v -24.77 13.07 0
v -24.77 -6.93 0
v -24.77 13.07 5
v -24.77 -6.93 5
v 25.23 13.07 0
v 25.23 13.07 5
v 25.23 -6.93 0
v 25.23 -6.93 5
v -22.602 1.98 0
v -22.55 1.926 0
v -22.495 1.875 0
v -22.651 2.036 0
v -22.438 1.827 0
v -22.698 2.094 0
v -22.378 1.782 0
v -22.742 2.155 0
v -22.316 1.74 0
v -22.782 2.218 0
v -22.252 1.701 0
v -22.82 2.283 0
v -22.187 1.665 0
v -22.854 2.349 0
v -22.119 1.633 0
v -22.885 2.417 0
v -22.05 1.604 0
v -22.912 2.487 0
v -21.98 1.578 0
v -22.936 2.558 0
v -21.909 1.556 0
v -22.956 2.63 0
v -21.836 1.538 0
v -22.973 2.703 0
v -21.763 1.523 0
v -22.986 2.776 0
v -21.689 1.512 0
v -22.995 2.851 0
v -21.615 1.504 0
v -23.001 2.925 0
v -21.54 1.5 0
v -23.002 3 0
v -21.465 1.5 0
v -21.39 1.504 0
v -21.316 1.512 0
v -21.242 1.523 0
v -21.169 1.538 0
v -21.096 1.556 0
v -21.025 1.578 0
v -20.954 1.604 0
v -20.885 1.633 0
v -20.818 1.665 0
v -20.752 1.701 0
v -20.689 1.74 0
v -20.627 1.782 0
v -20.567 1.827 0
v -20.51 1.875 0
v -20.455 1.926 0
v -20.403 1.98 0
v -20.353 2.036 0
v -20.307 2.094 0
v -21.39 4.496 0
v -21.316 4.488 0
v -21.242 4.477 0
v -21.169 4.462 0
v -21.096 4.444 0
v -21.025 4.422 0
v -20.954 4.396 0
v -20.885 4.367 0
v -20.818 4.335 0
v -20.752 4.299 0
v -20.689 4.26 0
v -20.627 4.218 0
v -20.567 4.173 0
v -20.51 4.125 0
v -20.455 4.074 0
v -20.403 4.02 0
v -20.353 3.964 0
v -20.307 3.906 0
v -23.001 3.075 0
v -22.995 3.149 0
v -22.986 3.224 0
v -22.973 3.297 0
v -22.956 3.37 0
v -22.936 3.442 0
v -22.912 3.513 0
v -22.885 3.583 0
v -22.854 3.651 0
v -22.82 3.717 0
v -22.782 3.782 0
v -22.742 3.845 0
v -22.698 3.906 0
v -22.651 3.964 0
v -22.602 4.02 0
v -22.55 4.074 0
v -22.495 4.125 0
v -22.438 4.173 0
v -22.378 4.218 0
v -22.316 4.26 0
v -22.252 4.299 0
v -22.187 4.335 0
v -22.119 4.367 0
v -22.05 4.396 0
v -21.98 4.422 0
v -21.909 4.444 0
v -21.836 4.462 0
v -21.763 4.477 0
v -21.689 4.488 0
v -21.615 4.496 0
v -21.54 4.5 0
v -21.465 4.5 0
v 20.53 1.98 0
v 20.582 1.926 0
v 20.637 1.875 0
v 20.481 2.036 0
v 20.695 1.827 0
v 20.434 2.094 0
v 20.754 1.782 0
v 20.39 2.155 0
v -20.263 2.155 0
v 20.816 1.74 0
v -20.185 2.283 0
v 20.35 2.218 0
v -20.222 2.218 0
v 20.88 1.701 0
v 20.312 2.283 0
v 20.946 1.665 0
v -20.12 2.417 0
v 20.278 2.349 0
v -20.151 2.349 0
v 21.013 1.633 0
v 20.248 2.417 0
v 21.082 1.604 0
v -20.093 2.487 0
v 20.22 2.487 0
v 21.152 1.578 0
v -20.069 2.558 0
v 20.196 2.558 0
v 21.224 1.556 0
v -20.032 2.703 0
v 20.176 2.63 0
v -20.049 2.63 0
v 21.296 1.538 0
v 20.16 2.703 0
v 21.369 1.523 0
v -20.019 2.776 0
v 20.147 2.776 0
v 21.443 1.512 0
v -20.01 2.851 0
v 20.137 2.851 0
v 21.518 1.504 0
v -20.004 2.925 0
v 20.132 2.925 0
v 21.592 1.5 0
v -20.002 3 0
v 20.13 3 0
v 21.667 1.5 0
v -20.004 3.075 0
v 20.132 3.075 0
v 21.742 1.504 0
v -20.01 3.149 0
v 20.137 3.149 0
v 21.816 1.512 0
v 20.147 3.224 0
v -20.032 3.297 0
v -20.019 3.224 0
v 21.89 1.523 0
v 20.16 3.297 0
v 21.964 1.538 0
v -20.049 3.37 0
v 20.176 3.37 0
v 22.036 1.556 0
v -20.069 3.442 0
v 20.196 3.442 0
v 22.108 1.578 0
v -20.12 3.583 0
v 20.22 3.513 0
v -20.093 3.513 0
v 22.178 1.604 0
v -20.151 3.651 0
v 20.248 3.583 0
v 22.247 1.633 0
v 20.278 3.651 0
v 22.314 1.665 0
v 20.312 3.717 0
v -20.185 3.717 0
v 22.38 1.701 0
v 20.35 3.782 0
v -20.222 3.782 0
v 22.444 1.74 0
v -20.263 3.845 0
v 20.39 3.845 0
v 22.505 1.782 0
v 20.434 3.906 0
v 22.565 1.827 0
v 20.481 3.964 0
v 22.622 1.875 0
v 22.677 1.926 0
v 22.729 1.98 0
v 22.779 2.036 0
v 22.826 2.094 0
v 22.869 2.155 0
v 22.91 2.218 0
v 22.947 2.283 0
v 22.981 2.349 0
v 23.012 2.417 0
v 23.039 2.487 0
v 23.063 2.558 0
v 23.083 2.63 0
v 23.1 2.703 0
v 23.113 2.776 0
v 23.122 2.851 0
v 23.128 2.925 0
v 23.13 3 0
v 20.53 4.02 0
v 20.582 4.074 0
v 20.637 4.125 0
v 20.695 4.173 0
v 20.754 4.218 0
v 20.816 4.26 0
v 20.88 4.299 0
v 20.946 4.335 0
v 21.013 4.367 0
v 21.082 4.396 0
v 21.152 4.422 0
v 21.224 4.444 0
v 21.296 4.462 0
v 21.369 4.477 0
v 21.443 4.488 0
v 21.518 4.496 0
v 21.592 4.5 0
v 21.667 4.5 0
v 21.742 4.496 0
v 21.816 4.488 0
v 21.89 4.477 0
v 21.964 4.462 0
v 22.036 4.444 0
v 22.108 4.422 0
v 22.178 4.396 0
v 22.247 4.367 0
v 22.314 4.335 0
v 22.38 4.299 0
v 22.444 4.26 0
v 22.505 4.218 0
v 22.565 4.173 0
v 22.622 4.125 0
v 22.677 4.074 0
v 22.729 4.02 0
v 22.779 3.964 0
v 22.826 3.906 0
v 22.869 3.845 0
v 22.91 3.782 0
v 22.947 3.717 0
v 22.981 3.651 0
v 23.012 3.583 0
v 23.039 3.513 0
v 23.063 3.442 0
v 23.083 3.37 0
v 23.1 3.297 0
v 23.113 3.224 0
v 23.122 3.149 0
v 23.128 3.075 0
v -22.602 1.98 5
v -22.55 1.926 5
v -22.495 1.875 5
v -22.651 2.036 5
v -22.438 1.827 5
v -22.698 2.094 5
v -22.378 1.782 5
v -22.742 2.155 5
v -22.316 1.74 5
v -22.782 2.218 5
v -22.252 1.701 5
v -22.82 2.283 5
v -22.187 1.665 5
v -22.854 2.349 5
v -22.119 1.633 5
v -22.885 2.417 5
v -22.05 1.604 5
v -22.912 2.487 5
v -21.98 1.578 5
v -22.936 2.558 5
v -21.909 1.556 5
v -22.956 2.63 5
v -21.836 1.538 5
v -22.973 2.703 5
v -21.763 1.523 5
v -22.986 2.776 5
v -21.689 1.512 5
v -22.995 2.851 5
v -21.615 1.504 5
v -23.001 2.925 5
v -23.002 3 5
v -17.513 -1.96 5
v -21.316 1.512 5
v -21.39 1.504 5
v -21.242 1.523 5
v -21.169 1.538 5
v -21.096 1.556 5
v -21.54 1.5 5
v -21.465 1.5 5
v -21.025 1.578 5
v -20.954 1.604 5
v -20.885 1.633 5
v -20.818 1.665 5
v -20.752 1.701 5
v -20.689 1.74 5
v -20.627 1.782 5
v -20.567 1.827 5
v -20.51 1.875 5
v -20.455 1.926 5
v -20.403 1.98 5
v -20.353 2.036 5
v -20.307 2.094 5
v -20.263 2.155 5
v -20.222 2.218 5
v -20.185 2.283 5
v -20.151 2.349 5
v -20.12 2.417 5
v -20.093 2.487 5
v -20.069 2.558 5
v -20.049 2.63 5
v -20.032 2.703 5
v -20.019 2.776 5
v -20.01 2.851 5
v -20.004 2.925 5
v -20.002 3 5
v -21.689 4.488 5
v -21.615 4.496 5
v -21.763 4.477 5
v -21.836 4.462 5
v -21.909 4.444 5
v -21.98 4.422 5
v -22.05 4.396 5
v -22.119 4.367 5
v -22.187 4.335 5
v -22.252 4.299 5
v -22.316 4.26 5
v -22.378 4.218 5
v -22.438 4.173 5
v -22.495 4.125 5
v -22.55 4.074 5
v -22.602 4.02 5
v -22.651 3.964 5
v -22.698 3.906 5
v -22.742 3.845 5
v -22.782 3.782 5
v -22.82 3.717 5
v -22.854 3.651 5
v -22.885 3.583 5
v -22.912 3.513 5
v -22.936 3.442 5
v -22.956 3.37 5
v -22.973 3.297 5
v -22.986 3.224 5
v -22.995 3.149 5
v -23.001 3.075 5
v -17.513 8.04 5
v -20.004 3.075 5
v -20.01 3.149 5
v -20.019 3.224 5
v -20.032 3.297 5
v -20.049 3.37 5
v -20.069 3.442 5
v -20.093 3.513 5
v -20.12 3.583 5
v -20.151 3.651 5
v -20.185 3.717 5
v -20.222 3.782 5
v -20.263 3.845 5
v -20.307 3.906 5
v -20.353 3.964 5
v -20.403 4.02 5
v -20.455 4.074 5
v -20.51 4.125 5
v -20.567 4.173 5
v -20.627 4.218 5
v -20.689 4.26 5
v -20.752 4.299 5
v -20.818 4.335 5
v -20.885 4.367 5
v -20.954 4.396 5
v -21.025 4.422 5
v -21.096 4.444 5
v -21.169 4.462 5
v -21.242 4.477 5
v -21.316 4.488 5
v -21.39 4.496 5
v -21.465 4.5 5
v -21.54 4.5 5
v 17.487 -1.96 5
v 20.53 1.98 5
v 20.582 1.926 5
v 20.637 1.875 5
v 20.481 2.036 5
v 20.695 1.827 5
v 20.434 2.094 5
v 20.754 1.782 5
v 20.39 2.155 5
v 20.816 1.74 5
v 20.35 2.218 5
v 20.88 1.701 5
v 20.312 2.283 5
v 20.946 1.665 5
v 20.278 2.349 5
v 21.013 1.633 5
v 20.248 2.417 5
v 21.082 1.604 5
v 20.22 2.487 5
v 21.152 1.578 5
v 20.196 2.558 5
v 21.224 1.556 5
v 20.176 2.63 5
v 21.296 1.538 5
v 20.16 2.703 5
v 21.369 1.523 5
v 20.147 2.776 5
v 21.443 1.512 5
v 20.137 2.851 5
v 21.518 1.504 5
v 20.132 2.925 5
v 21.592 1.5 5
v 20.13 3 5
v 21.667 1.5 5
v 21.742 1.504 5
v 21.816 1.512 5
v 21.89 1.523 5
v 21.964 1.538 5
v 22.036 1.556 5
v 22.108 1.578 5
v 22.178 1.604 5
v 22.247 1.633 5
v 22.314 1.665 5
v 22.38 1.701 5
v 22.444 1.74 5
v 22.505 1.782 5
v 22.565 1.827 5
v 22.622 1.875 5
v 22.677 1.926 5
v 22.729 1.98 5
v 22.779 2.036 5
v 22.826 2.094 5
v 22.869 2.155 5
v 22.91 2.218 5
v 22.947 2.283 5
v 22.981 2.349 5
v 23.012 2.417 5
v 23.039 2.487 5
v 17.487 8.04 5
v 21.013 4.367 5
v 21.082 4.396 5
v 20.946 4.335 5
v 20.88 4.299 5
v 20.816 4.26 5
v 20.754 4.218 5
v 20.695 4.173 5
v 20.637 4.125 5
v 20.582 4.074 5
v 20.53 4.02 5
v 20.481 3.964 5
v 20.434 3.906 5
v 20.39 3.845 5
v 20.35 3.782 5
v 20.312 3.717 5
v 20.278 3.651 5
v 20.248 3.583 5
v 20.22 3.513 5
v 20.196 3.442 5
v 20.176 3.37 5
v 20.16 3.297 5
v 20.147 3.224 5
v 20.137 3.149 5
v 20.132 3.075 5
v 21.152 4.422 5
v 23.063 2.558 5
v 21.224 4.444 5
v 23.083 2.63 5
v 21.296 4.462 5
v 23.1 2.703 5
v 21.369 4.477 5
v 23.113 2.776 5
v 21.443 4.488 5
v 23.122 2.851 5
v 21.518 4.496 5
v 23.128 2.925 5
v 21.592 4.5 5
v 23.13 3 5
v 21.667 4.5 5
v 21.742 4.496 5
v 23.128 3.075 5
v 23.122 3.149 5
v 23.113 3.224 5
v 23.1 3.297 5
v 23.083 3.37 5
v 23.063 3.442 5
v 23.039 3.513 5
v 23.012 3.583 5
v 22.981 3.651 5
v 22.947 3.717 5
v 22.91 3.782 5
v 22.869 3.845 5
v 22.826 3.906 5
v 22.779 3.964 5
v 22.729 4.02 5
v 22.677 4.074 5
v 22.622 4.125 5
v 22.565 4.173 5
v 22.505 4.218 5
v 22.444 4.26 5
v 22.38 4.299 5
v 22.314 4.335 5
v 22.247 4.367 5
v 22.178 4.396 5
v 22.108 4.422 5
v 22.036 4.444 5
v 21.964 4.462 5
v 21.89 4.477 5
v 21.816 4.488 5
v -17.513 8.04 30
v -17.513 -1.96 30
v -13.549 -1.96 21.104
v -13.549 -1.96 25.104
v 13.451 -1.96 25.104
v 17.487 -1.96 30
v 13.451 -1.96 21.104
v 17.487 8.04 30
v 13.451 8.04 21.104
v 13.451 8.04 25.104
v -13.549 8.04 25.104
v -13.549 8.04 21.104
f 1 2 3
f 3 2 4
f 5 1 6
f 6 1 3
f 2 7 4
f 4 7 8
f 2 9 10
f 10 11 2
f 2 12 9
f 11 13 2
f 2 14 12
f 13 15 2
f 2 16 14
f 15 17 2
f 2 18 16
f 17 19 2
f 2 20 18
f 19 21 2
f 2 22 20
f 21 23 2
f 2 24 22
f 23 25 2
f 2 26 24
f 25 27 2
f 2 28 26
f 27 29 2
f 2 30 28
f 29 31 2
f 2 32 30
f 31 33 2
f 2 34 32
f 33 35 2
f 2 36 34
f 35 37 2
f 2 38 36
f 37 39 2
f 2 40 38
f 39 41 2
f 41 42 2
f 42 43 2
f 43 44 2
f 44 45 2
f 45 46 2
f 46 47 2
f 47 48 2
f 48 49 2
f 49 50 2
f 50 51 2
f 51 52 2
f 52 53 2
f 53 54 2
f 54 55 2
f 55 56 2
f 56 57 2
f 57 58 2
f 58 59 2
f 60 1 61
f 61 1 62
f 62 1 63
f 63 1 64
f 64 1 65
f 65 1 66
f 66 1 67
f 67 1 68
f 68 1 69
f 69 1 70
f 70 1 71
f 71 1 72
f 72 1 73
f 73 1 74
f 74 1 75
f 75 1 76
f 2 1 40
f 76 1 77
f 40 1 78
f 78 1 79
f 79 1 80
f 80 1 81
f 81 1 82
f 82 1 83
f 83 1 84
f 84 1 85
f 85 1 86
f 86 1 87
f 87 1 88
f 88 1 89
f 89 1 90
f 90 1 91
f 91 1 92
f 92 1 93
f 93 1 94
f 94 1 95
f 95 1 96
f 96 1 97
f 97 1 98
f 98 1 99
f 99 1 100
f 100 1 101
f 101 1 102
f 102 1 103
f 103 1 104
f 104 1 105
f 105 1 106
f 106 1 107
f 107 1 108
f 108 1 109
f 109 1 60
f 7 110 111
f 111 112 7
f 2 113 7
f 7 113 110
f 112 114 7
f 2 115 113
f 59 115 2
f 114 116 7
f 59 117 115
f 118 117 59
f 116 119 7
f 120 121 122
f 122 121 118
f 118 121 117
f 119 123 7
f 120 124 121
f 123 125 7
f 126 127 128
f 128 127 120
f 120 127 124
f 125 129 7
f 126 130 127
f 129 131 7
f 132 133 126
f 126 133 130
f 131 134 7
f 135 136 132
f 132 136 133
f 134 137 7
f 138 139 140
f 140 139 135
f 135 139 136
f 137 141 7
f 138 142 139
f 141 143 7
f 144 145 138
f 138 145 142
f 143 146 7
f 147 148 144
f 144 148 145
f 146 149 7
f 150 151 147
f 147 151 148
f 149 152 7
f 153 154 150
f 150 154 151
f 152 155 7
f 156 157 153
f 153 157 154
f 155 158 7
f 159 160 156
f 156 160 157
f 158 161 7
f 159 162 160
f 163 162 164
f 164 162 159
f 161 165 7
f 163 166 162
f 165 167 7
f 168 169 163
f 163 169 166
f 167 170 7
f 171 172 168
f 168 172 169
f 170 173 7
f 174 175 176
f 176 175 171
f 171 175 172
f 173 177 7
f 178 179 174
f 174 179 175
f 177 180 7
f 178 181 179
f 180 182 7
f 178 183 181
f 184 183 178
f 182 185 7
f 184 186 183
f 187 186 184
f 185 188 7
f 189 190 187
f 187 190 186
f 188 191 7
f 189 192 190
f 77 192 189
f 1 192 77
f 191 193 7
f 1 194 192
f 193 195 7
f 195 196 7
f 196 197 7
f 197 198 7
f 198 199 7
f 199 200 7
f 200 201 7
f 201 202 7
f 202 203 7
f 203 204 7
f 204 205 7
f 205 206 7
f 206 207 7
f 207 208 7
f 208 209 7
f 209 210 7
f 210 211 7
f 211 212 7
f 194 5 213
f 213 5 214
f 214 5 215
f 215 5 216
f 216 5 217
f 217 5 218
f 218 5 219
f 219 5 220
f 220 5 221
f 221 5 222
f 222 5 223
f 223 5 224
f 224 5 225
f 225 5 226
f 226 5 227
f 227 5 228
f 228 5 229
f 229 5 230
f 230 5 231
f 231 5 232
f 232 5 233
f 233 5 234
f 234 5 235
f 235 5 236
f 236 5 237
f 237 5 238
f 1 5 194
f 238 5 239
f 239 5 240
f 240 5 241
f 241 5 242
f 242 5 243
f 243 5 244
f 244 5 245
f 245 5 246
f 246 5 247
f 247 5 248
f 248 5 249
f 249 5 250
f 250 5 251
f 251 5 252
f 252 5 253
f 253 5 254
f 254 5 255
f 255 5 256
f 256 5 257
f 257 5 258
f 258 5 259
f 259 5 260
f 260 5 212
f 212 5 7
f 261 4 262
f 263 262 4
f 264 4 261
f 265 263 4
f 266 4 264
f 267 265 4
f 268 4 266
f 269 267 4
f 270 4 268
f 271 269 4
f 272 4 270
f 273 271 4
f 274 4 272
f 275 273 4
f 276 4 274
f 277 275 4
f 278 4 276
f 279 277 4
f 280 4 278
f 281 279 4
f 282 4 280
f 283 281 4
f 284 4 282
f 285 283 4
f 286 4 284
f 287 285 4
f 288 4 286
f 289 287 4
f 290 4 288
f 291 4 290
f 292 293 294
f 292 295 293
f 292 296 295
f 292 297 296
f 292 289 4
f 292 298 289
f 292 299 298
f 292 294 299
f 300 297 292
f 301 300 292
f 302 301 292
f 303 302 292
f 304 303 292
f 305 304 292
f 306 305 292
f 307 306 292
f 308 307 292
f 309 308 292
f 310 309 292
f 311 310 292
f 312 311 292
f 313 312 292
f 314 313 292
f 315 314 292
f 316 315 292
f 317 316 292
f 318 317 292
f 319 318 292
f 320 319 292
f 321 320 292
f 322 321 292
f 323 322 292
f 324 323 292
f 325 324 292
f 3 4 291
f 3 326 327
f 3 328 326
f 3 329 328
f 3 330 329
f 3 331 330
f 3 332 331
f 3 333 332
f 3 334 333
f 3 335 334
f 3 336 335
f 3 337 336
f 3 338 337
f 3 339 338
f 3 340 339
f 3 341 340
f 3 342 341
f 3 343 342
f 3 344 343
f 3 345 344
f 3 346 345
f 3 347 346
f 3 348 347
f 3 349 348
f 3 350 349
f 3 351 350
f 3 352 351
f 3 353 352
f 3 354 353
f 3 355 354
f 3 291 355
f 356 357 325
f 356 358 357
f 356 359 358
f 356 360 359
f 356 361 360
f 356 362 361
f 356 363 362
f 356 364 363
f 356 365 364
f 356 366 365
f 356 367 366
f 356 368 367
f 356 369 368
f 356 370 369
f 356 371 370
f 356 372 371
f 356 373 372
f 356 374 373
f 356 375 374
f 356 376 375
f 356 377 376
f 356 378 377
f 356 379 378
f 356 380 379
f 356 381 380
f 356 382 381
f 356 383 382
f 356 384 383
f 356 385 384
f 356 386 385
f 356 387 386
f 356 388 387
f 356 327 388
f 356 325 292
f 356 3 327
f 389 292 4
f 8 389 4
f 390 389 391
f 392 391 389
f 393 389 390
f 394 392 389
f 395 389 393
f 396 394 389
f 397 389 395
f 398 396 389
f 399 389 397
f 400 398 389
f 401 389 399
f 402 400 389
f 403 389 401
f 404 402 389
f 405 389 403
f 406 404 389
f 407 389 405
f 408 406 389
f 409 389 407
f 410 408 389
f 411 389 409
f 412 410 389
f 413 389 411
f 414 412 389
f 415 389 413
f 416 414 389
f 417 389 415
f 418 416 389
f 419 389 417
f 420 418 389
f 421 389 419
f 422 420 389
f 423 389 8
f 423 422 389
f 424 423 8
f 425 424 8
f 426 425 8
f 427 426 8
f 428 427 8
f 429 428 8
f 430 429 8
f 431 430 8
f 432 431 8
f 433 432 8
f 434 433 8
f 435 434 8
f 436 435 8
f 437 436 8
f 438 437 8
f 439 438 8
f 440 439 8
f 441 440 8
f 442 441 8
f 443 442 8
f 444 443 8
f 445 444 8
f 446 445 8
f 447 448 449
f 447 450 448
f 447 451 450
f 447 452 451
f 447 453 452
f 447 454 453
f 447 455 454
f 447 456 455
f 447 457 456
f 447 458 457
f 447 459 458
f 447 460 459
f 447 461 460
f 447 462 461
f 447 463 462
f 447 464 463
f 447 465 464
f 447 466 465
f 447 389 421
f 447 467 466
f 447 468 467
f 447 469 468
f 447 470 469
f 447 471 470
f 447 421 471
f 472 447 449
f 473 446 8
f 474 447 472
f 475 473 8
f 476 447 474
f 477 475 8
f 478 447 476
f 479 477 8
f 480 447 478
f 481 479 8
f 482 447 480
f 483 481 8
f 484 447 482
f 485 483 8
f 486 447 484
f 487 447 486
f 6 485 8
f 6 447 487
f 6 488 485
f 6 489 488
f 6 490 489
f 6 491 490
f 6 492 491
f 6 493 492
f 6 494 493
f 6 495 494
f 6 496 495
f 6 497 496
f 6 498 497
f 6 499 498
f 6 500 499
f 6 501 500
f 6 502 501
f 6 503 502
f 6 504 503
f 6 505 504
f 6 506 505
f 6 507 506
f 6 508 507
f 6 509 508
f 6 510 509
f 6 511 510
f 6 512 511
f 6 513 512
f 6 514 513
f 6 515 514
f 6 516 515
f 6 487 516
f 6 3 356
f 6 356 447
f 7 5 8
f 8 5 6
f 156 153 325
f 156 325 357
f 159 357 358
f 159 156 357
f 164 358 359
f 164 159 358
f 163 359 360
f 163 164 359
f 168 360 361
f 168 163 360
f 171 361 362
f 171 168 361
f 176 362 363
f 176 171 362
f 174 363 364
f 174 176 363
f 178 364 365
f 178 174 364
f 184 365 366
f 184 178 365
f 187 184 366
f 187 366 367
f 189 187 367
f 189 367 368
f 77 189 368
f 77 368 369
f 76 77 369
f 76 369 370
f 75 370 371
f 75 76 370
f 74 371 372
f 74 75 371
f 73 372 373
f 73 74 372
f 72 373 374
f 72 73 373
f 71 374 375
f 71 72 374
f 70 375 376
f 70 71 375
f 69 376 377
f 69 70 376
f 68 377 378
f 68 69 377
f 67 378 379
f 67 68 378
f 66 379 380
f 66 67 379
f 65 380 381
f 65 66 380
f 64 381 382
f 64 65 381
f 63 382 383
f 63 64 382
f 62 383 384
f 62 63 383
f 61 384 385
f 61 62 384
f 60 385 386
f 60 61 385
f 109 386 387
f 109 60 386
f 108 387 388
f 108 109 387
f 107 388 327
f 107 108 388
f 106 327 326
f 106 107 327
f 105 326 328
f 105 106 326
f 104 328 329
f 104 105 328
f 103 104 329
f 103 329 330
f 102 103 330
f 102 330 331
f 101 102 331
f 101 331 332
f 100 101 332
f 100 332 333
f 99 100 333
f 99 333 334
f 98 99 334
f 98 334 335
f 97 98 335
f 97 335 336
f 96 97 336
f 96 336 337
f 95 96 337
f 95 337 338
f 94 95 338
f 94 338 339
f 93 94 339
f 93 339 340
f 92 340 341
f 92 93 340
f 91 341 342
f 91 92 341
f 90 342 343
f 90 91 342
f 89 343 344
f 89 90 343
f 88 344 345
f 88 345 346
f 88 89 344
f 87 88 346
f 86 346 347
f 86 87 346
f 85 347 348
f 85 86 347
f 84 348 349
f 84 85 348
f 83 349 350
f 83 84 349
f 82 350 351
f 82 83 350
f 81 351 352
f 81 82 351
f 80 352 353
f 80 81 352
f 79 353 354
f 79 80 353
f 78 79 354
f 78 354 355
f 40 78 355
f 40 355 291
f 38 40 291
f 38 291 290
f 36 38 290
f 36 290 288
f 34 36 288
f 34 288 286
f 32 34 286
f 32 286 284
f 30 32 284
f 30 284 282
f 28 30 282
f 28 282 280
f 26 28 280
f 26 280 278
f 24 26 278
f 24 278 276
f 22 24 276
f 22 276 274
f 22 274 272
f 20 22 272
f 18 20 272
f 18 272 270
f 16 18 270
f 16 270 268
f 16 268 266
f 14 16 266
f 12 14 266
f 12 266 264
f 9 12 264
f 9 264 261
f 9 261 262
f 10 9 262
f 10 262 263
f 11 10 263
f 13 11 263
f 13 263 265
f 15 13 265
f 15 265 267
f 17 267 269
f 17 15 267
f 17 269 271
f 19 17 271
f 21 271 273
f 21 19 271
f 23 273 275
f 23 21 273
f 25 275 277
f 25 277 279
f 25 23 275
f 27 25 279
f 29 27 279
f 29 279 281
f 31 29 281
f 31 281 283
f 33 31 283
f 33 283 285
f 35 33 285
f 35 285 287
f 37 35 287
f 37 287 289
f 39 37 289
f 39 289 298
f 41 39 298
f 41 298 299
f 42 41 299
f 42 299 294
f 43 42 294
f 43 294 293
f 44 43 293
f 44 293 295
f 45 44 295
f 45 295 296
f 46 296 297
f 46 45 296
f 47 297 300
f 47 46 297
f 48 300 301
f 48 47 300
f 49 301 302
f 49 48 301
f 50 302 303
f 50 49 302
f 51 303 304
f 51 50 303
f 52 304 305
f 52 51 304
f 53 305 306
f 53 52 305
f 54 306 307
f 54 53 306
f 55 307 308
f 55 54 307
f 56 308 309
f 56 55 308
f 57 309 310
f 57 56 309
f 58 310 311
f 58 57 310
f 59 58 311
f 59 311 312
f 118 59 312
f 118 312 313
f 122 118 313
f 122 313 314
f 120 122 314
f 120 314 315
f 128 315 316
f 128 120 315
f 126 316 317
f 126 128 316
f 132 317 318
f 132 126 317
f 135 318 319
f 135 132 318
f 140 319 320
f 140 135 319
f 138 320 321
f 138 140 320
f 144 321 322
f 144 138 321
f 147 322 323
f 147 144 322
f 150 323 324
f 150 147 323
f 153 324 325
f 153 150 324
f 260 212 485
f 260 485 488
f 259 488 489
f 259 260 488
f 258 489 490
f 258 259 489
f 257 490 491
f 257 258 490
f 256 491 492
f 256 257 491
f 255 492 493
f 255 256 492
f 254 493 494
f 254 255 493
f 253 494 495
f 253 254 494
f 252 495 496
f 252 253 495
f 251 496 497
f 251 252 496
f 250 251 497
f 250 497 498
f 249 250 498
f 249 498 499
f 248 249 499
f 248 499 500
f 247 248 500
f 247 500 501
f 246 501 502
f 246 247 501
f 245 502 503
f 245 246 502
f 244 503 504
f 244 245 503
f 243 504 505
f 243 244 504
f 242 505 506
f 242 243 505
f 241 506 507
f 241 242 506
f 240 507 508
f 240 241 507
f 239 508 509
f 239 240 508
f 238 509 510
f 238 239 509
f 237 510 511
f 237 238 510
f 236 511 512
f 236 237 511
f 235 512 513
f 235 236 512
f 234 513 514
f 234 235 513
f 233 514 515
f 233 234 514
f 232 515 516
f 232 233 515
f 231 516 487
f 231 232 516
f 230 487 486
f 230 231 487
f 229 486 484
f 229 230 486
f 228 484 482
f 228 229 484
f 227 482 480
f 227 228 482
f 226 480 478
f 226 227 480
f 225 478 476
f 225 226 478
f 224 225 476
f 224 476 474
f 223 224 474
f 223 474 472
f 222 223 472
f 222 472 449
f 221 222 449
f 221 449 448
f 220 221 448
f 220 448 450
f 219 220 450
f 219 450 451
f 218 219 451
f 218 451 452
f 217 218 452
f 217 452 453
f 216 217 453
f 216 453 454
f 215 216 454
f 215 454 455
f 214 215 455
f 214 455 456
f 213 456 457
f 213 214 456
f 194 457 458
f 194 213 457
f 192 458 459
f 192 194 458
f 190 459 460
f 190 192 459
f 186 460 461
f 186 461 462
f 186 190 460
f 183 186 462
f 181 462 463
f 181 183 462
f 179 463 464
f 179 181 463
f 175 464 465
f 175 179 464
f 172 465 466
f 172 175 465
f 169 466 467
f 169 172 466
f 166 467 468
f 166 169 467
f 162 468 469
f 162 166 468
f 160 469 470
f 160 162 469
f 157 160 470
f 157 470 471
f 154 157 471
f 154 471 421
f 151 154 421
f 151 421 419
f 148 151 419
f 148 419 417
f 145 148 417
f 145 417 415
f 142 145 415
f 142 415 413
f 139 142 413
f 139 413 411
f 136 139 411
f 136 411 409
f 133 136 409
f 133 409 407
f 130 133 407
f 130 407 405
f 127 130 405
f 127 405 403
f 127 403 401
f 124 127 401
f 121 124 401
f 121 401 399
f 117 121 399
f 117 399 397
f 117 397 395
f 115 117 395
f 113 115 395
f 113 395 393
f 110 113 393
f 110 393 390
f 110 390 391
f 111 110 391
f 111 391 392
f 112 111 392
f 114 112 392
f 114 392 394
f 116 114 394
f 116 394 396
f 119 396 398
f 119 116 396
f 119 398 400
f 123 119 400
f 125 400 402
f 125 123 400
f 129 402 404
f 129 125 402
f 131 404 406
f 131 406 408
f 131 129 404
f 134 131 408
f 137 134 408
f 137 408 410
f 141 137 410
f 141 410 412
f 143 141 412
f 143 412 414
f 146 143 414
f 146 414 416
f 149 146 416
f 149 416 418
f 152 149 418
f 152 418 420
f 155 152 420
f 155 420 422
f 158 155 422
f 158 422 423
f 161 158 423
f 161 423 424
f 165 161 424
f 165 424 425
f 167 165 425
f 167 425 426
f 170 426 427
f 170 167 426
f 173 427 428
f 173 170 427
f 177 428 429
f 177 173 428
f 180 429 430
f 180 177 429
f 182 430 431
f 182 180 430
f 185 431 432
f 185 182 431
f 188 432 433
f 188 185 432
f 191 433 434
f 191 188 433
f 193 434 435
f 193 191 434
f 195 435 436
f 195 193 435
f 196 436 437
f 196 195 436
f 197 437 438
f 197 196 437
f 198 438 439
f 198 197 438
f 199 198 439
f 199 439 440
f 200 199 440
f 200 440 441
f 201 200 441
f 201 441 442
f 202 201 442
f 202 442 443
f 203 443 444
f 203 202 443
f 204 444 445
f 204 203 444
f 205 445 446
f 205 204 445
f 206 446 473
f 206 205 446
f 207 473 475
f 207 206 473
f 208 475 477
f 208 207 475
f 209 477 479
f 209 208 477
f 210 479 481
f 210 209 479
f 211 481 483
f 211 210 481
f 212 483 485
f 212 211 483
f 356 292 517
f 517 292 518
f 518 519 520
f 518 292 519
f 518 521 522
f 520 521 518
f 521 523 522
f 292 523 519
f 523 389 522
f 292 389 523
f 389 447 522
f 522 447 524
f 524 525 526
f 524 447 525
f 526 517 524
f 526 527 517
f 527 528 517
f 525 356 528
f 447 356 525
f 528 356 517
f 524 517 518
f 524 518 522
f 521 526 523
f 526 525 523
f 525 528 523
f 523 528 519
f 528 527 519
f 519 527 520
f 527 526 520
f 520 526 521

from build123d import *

# Parameters (mm, degrees)
SKETCH_W     = 50
SKETCH_H     = 20
PAD_DEPTH    = 5
SKETCH001_R  = 1.5
HOLE_DEPTH   = 25
SKETCH002_W  = 35
SKETCH002_H  = 10
PAD001_DEPTH = 25
SKETCH003_W  = 27
SKETCH003_H  = 4
POCKET_DEPTH = 11


with BuildPart() as part:
    # Sketch → Pad (new body)
    with BuildSketch(Plane.XY):
        with Locations((0.229687, 0.070392)):
            Rectangle(SKETCH_W, SKETCH_H)
    extrude(amount=PAD_DEPTH)

    # Sketch001 (on Face6 of Pad) → Hole (cut)
    with BuildSketch(Plane.XY.offset(5)):
        with Locations((-21.502412, 0)):
            Circle(SKETCH001_R)
        with Locations((21.629828, 0)):
            Circle(SKETCH001_R)
    extrude(amount=-HOLE_DEPTH, mode=Mode.SUBTRACT)

    # Sketch002 (on Face5 of Hole) → Pad001 (join)
    with BuildSketch(Plane.XY.offset(5)):
        with Locations((-0.013338, 0.040416)):
            Rectangle(SKETCH002_W, SKETCH002_H)
    extrude(amount=PAD001_DEPTH)

    # Sketch003 (on Face12 of Pad001) → Pocket (cut)
    with BuildSketch(Plane(origin=(0, 5.040416, 0), x_dir=(-1, 0, 0), z_dir=(0, 1, 0))):
        with Locations((0.049137, 23.104307)):
            Rectangle(SKETCH003_W, SKETCH003_H)
    extrude(amount=-POCKET_DEPTH, mode=Mode.SUBTRACT)


with BuildPart() as part_1:
    # Body placement: moved
    add(part.part.moved(Location((0, 3, 0))))


solid = part_1.part
